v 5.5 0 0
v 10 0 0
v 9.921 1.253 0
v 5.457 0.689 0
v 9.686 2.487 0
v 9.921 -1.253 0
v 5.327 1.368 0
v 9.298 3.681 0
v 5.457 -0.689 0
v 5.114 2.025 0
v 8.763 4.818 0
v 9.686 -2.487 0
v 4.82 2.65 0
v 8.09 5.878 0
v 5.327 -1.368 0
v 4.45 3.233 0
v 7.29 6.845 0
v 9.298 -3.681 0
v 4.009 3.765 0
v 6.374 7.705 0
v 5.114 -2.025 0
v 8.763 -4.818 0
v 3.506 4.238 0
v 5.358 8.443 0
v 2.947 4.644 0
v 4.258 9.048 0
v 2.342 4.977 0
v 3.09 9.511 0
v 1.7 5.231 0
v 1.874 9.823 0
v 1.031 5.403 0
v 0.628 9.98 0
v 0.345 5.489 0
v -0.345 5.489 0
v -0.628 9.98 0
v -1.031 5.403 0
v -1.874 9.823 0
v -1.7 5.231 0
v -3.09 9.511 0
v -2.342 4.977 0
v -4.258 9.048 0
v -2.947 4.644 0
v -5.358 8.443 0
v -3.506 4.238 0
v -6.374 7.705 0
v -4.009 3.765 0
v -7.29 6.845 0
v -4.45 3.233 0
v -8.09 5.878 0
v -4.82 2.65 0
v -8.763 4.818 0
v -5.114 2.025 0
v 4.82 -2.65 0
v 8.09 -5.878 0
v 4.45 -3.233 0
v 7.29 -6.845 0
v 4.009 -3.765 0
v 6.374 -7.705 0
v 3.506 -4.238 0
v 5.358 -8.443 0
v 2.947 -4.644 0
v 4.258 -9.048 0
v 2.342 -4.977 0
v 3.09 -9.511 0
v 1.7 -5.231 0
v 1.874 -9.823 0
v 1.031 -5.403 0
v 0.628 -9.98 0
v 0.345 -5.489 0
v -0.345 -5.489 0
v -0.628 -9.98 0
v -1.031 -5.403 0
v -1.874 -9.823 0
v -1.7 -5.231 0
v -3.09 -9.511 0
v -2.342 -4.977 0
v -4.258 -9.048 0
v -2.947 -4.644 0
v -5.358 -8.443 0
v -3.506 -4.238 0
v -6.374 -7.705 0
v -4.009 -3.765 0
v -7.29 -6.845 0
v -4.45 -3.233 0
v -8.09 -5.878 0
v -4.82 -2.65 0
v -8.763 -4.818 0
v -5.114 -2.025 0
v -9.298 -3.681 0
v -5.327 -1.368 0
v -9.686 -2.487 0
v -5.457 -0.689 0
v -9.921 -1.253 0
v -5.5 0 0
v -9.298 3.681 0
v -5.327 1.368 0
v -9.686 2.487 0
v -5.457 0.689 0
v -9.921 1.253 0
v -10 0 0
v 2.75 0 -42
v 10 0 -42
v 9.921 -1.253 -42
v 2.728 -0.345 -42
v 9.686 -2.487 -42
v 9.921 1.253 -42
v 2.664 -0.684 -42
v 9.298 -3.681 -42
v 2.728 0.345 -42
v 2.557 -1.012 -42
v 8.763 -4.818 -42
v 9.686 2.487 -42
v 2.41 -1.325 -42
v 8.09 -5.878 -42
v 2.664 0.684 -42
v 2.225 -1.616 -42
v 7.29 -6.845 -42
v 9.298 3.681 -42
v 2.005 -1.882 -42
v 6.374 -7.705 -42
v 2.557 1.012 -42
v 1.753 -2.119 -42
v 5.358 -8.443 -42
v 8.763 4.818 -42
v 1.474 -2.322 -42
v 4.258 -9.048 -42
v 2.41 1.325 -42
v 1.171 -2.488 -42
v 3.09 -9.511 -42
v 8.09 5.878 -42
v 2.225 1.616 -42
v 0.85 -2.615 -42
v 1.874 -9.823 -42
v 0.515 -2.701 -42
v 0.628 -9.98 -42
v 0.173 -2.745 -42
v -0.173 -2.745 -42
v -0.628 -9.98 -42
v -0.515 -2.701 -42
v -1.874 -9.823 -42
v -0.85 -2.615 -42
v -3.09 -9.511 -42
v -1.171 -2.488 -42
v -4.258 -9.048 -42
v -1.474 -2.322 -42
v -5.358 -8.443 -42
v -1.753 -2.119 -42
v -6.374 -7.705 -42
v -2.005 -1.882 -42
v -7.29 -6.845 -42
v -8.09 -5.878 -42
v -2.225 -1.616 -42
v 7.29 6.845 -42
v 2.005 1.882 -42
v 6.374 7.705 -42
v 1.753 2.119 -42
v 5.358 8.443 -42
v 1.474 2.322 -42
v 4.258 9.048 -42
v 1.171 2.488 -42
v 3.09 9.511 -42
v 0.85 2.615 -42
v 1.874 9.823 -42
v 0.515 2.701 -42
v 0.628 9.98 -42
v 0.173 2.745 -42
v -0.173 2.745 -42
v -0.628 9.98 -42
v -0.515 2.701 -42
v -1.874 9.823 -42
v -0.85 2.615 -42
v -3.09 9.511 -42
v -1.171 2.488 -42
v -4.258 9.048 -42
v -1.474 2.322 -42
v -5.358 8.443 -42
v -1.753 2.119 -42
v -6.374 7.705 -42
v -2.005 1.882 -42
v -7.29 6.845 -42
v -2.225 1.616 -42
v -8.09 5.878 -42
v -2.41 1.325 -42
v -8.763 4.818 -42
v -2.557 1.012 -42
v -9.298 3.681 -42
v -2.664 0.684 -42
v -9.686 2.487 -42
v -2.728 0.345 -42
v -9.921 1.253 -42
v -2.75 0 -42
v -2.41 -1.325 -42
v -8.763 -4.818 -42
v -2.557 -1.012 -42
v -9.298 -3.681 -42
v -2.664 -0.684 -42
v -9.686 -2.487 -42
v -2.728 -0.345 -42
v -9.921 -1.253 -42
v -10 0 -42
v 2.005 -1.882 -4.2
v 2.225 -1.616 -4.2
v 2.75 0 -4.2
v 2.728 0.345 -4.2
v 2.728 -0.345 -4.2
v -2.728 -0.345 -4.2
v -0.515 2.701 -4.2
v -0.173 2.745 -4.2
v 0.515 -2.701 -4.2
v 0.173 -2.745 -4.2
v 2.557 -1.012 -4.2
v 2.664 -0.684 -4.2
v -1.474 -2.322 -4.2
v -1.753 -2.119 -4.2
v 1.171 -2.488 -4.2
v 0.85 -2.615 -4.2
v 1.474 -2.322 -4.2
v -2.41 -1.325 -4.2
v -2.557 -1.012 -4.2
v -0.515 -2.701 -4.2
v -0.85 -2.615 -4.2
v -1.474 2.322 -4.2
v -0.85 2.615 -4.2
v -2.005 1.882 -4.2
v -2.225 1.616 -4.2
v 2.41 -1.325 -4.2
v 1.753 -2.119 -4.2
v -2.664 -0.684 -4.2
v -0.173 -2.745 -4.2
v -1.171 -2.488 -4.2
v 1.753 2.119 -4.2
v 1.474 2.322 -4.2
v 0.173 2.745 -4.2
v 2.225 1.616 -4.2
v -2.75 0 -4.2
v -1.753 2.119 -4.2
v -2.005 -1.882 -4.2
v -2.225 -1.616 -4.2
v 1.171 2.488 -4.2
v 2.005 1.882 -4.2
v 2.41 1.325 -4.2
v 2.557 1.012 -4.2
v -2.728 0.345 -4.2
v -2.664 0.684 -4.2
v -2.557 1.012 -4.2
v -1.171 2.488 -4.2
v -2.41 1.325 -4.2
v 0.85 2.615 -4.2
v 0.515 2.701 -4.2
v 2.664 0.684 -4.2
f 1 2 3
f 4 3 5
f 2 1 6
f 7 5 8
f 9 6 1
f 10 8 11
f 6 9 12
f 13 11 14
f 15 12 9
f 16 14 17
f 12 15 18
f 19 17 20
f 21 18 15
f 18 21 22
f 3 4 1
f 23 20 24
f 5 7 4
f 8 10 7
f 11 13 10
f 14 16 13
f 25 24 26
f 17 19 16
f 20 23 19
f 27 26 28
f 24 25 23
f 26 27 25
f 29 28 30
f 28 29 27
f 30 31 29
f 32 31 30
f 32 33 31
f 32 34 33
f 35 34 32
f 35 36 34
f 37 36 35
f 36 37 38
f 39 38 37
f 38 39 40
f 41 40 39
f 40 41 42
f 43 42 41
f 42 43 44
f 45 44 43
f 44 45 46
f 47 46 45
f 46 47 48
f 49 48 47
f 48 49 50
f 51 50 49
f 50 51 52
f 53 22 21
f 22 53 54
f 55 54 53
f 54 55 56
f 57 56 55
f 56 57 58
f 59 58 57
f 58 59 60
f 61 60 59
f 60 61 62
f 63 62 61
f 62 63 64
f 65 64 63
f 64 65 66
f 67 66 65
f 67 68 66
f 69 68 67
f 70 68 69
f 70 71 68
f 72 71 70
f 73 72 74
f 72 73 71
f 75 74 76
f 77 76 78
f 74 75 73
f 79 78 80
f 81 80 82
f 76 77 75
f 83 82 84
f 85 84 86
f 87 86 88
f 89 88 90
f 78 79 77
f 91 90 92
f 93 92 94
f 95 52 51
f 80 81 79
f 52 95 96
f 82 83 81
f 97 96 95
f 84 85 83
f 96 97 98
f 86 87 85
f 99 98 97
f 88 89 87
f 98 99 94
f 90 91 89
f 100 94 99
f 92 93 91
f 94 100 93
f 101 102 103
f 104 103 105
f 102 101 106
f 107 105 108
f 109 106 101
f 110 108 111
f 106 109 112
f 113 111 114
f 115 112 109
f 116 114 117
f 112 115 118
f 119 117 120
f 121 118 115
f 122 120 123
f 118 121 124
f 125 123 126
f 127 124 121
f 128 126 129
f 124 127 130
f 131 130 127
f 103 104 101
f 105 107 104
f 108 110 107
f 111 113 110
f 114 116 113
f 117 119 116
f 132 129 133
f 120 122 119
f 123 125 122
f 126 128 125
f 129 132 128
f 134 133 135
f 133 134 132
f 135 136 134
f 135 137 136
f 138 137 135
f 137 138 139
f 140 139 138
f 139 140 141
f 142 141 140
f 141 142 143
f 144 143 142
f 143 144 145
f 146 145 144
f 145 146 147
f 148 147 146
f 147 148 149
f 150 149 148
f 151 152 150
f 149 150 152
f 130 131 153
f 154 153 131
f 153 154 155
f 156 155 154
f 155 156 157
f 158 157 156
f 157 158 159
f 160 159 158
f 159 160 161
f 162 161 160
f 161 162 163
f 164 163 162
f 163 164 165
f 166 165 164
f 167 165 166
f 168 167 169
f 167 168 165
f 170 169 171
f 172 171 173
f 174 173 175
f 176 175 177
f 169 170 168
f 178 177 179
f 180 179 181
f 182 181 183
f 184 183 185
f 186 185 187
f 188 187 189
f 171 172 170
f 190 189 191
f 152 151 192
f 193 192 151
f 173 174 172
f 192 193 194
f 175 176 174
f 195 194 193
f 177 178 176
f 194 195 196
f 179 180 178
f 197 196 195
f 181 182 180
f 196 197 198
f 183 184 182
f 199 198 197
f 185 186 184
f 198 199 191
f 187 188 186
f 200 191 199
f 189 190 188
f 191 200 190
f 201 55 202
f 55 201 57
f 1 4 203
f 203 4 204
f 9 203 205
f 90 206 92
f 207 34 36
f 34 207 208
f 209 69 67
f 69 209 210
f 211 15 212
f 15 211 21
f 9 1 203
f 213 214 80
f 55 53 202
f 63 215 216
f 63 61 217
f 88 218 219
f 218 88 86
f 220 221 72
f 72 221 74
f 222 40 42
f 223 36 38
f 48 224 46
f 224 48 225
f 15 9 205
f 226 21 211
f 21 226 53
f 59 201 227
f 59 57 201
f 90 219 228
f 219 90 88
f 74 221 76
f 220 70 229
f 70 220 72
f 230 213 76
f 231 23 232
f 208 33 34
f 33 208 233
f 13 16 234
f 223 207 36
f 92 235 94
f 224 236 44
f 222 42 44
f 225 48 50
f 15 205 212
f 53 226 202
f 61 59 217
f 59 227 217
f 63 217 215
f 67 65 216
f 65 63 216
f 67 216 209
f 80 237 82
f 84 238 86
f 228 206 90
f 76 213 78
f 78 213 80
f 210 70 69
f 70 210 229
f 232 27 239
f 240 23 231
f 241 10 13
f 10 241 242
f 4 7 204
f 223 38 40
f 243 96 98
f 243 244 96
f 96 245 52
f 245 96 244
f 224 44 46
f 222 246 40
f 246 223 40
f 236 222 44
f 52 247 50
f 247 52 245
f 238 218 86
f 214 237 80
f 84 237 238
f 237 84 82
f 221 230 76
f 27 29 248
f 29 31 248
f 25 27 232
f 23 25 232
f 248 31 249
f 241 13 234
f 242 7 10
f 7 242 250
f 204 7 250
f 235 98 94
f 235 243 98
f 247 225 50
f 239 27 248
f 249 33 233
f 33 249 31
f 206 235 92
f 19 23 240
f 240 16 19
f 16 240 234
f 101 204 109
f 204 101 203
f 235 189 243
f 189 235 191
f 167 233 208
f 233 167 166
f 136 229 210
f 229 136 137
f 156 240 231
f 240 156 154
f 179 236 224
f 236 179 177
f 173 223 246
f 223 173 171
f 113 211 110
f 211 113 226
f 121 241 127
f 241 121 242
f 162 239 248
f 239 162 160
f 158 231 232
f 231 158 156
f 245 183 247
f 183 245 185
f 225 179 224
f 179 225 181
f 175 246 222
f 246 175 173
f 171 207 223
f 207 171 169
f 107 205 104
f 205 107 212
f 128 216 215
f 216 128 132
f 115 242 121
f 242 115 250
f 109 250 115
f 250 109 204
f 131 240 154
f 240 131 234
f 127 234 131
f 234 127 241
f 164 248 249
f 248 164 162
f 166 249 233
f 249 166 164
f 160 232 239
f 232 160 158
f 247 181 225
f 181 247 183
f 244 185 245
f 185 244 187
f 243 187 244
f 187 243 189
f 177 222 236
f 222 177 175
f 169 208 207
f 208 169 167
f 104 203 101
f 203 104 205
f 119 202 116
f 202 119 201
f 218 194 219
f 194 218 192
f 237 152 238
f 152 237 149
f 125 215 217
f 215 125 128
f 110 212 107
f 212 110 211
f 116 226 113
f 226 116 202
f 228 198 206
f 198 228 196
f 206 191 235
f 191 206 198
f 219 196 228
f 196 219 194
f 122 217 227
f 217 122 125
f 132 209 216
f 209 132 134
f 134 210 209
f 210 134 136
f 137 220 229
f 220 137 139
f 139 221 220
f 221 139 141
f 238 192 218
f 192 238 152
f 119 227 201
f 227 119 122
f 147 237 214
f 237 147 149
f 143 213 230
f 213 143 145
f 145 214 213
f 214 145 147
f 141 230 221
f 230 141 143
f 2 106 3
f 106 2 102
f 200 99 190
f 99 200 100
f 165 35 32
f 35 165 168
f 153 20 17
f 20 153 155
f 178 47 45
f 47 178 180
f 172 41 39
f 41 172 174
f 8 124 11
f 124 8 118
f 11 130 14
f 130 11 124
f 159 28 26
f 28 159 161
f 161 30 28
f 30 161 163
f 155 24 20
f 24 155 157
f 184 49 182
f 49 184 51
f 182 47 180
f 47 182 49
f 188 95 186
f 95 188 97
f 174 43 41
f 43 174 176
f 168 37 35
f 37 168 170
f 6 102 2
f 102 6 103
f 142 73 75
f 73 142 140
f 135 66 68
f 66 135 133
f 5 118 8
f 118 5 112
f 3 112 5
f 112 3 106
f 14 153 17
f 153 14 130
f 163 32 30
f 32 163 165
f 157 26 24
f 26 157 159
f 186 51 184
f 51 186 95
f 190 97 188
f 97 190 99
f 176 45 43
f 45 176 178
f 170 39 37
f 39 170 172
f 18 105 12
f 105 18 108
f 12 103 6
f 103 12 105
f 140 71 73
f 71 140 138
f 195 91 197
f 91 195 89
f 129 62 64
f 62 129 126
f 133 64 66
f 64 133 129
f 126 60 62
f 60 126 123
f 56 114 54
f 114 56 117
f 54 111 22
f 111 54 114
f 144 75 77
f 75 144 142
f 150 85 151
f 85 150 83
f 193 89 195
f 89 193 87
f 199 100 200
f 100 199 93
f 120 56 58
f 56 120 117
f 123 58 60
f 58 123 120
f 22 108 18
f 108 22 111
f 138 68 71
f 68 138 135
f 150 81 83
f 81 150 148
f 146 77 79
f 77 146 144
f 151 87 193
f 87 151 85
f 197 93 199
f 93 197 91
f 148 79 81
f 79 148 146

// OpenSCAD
$fn = 50;


difference() {
	union() {
		translate(v = [0, 0, -42.0000000000]) {
			cylinder(h = 42, r = 10.0000000000);
		}
		cylinder(h = 0, r = 16.0000000000);
	}
	union() {
		translate(v = [0, 0, 0]) {
			rotate(a = [0, 0, 0]) {
				difference() {
					union() {
						#translate(v = [0, 0, -42.0000000000]) {
							cylinder(h = 42, r = 2.2500000000);
						}
						#translate(v = [0, 0, -4.2000000000]) {
							cylinder(h = 4.2000000000, r = 10.0000000000, r1 = 2.7500000000, r2 = 5.5000000000);
						}
						#translate(v = [0, 0, -42.0000000000]) {
							cylinder(h = 42, r = 2.7500000000);
						}
						#translate(v = [0, 0, -42.0000000000]) {
							cylinder(h = 42, r = 2.2500000000);
						}
					}
					union();
				}
			}
		}
	}
}
